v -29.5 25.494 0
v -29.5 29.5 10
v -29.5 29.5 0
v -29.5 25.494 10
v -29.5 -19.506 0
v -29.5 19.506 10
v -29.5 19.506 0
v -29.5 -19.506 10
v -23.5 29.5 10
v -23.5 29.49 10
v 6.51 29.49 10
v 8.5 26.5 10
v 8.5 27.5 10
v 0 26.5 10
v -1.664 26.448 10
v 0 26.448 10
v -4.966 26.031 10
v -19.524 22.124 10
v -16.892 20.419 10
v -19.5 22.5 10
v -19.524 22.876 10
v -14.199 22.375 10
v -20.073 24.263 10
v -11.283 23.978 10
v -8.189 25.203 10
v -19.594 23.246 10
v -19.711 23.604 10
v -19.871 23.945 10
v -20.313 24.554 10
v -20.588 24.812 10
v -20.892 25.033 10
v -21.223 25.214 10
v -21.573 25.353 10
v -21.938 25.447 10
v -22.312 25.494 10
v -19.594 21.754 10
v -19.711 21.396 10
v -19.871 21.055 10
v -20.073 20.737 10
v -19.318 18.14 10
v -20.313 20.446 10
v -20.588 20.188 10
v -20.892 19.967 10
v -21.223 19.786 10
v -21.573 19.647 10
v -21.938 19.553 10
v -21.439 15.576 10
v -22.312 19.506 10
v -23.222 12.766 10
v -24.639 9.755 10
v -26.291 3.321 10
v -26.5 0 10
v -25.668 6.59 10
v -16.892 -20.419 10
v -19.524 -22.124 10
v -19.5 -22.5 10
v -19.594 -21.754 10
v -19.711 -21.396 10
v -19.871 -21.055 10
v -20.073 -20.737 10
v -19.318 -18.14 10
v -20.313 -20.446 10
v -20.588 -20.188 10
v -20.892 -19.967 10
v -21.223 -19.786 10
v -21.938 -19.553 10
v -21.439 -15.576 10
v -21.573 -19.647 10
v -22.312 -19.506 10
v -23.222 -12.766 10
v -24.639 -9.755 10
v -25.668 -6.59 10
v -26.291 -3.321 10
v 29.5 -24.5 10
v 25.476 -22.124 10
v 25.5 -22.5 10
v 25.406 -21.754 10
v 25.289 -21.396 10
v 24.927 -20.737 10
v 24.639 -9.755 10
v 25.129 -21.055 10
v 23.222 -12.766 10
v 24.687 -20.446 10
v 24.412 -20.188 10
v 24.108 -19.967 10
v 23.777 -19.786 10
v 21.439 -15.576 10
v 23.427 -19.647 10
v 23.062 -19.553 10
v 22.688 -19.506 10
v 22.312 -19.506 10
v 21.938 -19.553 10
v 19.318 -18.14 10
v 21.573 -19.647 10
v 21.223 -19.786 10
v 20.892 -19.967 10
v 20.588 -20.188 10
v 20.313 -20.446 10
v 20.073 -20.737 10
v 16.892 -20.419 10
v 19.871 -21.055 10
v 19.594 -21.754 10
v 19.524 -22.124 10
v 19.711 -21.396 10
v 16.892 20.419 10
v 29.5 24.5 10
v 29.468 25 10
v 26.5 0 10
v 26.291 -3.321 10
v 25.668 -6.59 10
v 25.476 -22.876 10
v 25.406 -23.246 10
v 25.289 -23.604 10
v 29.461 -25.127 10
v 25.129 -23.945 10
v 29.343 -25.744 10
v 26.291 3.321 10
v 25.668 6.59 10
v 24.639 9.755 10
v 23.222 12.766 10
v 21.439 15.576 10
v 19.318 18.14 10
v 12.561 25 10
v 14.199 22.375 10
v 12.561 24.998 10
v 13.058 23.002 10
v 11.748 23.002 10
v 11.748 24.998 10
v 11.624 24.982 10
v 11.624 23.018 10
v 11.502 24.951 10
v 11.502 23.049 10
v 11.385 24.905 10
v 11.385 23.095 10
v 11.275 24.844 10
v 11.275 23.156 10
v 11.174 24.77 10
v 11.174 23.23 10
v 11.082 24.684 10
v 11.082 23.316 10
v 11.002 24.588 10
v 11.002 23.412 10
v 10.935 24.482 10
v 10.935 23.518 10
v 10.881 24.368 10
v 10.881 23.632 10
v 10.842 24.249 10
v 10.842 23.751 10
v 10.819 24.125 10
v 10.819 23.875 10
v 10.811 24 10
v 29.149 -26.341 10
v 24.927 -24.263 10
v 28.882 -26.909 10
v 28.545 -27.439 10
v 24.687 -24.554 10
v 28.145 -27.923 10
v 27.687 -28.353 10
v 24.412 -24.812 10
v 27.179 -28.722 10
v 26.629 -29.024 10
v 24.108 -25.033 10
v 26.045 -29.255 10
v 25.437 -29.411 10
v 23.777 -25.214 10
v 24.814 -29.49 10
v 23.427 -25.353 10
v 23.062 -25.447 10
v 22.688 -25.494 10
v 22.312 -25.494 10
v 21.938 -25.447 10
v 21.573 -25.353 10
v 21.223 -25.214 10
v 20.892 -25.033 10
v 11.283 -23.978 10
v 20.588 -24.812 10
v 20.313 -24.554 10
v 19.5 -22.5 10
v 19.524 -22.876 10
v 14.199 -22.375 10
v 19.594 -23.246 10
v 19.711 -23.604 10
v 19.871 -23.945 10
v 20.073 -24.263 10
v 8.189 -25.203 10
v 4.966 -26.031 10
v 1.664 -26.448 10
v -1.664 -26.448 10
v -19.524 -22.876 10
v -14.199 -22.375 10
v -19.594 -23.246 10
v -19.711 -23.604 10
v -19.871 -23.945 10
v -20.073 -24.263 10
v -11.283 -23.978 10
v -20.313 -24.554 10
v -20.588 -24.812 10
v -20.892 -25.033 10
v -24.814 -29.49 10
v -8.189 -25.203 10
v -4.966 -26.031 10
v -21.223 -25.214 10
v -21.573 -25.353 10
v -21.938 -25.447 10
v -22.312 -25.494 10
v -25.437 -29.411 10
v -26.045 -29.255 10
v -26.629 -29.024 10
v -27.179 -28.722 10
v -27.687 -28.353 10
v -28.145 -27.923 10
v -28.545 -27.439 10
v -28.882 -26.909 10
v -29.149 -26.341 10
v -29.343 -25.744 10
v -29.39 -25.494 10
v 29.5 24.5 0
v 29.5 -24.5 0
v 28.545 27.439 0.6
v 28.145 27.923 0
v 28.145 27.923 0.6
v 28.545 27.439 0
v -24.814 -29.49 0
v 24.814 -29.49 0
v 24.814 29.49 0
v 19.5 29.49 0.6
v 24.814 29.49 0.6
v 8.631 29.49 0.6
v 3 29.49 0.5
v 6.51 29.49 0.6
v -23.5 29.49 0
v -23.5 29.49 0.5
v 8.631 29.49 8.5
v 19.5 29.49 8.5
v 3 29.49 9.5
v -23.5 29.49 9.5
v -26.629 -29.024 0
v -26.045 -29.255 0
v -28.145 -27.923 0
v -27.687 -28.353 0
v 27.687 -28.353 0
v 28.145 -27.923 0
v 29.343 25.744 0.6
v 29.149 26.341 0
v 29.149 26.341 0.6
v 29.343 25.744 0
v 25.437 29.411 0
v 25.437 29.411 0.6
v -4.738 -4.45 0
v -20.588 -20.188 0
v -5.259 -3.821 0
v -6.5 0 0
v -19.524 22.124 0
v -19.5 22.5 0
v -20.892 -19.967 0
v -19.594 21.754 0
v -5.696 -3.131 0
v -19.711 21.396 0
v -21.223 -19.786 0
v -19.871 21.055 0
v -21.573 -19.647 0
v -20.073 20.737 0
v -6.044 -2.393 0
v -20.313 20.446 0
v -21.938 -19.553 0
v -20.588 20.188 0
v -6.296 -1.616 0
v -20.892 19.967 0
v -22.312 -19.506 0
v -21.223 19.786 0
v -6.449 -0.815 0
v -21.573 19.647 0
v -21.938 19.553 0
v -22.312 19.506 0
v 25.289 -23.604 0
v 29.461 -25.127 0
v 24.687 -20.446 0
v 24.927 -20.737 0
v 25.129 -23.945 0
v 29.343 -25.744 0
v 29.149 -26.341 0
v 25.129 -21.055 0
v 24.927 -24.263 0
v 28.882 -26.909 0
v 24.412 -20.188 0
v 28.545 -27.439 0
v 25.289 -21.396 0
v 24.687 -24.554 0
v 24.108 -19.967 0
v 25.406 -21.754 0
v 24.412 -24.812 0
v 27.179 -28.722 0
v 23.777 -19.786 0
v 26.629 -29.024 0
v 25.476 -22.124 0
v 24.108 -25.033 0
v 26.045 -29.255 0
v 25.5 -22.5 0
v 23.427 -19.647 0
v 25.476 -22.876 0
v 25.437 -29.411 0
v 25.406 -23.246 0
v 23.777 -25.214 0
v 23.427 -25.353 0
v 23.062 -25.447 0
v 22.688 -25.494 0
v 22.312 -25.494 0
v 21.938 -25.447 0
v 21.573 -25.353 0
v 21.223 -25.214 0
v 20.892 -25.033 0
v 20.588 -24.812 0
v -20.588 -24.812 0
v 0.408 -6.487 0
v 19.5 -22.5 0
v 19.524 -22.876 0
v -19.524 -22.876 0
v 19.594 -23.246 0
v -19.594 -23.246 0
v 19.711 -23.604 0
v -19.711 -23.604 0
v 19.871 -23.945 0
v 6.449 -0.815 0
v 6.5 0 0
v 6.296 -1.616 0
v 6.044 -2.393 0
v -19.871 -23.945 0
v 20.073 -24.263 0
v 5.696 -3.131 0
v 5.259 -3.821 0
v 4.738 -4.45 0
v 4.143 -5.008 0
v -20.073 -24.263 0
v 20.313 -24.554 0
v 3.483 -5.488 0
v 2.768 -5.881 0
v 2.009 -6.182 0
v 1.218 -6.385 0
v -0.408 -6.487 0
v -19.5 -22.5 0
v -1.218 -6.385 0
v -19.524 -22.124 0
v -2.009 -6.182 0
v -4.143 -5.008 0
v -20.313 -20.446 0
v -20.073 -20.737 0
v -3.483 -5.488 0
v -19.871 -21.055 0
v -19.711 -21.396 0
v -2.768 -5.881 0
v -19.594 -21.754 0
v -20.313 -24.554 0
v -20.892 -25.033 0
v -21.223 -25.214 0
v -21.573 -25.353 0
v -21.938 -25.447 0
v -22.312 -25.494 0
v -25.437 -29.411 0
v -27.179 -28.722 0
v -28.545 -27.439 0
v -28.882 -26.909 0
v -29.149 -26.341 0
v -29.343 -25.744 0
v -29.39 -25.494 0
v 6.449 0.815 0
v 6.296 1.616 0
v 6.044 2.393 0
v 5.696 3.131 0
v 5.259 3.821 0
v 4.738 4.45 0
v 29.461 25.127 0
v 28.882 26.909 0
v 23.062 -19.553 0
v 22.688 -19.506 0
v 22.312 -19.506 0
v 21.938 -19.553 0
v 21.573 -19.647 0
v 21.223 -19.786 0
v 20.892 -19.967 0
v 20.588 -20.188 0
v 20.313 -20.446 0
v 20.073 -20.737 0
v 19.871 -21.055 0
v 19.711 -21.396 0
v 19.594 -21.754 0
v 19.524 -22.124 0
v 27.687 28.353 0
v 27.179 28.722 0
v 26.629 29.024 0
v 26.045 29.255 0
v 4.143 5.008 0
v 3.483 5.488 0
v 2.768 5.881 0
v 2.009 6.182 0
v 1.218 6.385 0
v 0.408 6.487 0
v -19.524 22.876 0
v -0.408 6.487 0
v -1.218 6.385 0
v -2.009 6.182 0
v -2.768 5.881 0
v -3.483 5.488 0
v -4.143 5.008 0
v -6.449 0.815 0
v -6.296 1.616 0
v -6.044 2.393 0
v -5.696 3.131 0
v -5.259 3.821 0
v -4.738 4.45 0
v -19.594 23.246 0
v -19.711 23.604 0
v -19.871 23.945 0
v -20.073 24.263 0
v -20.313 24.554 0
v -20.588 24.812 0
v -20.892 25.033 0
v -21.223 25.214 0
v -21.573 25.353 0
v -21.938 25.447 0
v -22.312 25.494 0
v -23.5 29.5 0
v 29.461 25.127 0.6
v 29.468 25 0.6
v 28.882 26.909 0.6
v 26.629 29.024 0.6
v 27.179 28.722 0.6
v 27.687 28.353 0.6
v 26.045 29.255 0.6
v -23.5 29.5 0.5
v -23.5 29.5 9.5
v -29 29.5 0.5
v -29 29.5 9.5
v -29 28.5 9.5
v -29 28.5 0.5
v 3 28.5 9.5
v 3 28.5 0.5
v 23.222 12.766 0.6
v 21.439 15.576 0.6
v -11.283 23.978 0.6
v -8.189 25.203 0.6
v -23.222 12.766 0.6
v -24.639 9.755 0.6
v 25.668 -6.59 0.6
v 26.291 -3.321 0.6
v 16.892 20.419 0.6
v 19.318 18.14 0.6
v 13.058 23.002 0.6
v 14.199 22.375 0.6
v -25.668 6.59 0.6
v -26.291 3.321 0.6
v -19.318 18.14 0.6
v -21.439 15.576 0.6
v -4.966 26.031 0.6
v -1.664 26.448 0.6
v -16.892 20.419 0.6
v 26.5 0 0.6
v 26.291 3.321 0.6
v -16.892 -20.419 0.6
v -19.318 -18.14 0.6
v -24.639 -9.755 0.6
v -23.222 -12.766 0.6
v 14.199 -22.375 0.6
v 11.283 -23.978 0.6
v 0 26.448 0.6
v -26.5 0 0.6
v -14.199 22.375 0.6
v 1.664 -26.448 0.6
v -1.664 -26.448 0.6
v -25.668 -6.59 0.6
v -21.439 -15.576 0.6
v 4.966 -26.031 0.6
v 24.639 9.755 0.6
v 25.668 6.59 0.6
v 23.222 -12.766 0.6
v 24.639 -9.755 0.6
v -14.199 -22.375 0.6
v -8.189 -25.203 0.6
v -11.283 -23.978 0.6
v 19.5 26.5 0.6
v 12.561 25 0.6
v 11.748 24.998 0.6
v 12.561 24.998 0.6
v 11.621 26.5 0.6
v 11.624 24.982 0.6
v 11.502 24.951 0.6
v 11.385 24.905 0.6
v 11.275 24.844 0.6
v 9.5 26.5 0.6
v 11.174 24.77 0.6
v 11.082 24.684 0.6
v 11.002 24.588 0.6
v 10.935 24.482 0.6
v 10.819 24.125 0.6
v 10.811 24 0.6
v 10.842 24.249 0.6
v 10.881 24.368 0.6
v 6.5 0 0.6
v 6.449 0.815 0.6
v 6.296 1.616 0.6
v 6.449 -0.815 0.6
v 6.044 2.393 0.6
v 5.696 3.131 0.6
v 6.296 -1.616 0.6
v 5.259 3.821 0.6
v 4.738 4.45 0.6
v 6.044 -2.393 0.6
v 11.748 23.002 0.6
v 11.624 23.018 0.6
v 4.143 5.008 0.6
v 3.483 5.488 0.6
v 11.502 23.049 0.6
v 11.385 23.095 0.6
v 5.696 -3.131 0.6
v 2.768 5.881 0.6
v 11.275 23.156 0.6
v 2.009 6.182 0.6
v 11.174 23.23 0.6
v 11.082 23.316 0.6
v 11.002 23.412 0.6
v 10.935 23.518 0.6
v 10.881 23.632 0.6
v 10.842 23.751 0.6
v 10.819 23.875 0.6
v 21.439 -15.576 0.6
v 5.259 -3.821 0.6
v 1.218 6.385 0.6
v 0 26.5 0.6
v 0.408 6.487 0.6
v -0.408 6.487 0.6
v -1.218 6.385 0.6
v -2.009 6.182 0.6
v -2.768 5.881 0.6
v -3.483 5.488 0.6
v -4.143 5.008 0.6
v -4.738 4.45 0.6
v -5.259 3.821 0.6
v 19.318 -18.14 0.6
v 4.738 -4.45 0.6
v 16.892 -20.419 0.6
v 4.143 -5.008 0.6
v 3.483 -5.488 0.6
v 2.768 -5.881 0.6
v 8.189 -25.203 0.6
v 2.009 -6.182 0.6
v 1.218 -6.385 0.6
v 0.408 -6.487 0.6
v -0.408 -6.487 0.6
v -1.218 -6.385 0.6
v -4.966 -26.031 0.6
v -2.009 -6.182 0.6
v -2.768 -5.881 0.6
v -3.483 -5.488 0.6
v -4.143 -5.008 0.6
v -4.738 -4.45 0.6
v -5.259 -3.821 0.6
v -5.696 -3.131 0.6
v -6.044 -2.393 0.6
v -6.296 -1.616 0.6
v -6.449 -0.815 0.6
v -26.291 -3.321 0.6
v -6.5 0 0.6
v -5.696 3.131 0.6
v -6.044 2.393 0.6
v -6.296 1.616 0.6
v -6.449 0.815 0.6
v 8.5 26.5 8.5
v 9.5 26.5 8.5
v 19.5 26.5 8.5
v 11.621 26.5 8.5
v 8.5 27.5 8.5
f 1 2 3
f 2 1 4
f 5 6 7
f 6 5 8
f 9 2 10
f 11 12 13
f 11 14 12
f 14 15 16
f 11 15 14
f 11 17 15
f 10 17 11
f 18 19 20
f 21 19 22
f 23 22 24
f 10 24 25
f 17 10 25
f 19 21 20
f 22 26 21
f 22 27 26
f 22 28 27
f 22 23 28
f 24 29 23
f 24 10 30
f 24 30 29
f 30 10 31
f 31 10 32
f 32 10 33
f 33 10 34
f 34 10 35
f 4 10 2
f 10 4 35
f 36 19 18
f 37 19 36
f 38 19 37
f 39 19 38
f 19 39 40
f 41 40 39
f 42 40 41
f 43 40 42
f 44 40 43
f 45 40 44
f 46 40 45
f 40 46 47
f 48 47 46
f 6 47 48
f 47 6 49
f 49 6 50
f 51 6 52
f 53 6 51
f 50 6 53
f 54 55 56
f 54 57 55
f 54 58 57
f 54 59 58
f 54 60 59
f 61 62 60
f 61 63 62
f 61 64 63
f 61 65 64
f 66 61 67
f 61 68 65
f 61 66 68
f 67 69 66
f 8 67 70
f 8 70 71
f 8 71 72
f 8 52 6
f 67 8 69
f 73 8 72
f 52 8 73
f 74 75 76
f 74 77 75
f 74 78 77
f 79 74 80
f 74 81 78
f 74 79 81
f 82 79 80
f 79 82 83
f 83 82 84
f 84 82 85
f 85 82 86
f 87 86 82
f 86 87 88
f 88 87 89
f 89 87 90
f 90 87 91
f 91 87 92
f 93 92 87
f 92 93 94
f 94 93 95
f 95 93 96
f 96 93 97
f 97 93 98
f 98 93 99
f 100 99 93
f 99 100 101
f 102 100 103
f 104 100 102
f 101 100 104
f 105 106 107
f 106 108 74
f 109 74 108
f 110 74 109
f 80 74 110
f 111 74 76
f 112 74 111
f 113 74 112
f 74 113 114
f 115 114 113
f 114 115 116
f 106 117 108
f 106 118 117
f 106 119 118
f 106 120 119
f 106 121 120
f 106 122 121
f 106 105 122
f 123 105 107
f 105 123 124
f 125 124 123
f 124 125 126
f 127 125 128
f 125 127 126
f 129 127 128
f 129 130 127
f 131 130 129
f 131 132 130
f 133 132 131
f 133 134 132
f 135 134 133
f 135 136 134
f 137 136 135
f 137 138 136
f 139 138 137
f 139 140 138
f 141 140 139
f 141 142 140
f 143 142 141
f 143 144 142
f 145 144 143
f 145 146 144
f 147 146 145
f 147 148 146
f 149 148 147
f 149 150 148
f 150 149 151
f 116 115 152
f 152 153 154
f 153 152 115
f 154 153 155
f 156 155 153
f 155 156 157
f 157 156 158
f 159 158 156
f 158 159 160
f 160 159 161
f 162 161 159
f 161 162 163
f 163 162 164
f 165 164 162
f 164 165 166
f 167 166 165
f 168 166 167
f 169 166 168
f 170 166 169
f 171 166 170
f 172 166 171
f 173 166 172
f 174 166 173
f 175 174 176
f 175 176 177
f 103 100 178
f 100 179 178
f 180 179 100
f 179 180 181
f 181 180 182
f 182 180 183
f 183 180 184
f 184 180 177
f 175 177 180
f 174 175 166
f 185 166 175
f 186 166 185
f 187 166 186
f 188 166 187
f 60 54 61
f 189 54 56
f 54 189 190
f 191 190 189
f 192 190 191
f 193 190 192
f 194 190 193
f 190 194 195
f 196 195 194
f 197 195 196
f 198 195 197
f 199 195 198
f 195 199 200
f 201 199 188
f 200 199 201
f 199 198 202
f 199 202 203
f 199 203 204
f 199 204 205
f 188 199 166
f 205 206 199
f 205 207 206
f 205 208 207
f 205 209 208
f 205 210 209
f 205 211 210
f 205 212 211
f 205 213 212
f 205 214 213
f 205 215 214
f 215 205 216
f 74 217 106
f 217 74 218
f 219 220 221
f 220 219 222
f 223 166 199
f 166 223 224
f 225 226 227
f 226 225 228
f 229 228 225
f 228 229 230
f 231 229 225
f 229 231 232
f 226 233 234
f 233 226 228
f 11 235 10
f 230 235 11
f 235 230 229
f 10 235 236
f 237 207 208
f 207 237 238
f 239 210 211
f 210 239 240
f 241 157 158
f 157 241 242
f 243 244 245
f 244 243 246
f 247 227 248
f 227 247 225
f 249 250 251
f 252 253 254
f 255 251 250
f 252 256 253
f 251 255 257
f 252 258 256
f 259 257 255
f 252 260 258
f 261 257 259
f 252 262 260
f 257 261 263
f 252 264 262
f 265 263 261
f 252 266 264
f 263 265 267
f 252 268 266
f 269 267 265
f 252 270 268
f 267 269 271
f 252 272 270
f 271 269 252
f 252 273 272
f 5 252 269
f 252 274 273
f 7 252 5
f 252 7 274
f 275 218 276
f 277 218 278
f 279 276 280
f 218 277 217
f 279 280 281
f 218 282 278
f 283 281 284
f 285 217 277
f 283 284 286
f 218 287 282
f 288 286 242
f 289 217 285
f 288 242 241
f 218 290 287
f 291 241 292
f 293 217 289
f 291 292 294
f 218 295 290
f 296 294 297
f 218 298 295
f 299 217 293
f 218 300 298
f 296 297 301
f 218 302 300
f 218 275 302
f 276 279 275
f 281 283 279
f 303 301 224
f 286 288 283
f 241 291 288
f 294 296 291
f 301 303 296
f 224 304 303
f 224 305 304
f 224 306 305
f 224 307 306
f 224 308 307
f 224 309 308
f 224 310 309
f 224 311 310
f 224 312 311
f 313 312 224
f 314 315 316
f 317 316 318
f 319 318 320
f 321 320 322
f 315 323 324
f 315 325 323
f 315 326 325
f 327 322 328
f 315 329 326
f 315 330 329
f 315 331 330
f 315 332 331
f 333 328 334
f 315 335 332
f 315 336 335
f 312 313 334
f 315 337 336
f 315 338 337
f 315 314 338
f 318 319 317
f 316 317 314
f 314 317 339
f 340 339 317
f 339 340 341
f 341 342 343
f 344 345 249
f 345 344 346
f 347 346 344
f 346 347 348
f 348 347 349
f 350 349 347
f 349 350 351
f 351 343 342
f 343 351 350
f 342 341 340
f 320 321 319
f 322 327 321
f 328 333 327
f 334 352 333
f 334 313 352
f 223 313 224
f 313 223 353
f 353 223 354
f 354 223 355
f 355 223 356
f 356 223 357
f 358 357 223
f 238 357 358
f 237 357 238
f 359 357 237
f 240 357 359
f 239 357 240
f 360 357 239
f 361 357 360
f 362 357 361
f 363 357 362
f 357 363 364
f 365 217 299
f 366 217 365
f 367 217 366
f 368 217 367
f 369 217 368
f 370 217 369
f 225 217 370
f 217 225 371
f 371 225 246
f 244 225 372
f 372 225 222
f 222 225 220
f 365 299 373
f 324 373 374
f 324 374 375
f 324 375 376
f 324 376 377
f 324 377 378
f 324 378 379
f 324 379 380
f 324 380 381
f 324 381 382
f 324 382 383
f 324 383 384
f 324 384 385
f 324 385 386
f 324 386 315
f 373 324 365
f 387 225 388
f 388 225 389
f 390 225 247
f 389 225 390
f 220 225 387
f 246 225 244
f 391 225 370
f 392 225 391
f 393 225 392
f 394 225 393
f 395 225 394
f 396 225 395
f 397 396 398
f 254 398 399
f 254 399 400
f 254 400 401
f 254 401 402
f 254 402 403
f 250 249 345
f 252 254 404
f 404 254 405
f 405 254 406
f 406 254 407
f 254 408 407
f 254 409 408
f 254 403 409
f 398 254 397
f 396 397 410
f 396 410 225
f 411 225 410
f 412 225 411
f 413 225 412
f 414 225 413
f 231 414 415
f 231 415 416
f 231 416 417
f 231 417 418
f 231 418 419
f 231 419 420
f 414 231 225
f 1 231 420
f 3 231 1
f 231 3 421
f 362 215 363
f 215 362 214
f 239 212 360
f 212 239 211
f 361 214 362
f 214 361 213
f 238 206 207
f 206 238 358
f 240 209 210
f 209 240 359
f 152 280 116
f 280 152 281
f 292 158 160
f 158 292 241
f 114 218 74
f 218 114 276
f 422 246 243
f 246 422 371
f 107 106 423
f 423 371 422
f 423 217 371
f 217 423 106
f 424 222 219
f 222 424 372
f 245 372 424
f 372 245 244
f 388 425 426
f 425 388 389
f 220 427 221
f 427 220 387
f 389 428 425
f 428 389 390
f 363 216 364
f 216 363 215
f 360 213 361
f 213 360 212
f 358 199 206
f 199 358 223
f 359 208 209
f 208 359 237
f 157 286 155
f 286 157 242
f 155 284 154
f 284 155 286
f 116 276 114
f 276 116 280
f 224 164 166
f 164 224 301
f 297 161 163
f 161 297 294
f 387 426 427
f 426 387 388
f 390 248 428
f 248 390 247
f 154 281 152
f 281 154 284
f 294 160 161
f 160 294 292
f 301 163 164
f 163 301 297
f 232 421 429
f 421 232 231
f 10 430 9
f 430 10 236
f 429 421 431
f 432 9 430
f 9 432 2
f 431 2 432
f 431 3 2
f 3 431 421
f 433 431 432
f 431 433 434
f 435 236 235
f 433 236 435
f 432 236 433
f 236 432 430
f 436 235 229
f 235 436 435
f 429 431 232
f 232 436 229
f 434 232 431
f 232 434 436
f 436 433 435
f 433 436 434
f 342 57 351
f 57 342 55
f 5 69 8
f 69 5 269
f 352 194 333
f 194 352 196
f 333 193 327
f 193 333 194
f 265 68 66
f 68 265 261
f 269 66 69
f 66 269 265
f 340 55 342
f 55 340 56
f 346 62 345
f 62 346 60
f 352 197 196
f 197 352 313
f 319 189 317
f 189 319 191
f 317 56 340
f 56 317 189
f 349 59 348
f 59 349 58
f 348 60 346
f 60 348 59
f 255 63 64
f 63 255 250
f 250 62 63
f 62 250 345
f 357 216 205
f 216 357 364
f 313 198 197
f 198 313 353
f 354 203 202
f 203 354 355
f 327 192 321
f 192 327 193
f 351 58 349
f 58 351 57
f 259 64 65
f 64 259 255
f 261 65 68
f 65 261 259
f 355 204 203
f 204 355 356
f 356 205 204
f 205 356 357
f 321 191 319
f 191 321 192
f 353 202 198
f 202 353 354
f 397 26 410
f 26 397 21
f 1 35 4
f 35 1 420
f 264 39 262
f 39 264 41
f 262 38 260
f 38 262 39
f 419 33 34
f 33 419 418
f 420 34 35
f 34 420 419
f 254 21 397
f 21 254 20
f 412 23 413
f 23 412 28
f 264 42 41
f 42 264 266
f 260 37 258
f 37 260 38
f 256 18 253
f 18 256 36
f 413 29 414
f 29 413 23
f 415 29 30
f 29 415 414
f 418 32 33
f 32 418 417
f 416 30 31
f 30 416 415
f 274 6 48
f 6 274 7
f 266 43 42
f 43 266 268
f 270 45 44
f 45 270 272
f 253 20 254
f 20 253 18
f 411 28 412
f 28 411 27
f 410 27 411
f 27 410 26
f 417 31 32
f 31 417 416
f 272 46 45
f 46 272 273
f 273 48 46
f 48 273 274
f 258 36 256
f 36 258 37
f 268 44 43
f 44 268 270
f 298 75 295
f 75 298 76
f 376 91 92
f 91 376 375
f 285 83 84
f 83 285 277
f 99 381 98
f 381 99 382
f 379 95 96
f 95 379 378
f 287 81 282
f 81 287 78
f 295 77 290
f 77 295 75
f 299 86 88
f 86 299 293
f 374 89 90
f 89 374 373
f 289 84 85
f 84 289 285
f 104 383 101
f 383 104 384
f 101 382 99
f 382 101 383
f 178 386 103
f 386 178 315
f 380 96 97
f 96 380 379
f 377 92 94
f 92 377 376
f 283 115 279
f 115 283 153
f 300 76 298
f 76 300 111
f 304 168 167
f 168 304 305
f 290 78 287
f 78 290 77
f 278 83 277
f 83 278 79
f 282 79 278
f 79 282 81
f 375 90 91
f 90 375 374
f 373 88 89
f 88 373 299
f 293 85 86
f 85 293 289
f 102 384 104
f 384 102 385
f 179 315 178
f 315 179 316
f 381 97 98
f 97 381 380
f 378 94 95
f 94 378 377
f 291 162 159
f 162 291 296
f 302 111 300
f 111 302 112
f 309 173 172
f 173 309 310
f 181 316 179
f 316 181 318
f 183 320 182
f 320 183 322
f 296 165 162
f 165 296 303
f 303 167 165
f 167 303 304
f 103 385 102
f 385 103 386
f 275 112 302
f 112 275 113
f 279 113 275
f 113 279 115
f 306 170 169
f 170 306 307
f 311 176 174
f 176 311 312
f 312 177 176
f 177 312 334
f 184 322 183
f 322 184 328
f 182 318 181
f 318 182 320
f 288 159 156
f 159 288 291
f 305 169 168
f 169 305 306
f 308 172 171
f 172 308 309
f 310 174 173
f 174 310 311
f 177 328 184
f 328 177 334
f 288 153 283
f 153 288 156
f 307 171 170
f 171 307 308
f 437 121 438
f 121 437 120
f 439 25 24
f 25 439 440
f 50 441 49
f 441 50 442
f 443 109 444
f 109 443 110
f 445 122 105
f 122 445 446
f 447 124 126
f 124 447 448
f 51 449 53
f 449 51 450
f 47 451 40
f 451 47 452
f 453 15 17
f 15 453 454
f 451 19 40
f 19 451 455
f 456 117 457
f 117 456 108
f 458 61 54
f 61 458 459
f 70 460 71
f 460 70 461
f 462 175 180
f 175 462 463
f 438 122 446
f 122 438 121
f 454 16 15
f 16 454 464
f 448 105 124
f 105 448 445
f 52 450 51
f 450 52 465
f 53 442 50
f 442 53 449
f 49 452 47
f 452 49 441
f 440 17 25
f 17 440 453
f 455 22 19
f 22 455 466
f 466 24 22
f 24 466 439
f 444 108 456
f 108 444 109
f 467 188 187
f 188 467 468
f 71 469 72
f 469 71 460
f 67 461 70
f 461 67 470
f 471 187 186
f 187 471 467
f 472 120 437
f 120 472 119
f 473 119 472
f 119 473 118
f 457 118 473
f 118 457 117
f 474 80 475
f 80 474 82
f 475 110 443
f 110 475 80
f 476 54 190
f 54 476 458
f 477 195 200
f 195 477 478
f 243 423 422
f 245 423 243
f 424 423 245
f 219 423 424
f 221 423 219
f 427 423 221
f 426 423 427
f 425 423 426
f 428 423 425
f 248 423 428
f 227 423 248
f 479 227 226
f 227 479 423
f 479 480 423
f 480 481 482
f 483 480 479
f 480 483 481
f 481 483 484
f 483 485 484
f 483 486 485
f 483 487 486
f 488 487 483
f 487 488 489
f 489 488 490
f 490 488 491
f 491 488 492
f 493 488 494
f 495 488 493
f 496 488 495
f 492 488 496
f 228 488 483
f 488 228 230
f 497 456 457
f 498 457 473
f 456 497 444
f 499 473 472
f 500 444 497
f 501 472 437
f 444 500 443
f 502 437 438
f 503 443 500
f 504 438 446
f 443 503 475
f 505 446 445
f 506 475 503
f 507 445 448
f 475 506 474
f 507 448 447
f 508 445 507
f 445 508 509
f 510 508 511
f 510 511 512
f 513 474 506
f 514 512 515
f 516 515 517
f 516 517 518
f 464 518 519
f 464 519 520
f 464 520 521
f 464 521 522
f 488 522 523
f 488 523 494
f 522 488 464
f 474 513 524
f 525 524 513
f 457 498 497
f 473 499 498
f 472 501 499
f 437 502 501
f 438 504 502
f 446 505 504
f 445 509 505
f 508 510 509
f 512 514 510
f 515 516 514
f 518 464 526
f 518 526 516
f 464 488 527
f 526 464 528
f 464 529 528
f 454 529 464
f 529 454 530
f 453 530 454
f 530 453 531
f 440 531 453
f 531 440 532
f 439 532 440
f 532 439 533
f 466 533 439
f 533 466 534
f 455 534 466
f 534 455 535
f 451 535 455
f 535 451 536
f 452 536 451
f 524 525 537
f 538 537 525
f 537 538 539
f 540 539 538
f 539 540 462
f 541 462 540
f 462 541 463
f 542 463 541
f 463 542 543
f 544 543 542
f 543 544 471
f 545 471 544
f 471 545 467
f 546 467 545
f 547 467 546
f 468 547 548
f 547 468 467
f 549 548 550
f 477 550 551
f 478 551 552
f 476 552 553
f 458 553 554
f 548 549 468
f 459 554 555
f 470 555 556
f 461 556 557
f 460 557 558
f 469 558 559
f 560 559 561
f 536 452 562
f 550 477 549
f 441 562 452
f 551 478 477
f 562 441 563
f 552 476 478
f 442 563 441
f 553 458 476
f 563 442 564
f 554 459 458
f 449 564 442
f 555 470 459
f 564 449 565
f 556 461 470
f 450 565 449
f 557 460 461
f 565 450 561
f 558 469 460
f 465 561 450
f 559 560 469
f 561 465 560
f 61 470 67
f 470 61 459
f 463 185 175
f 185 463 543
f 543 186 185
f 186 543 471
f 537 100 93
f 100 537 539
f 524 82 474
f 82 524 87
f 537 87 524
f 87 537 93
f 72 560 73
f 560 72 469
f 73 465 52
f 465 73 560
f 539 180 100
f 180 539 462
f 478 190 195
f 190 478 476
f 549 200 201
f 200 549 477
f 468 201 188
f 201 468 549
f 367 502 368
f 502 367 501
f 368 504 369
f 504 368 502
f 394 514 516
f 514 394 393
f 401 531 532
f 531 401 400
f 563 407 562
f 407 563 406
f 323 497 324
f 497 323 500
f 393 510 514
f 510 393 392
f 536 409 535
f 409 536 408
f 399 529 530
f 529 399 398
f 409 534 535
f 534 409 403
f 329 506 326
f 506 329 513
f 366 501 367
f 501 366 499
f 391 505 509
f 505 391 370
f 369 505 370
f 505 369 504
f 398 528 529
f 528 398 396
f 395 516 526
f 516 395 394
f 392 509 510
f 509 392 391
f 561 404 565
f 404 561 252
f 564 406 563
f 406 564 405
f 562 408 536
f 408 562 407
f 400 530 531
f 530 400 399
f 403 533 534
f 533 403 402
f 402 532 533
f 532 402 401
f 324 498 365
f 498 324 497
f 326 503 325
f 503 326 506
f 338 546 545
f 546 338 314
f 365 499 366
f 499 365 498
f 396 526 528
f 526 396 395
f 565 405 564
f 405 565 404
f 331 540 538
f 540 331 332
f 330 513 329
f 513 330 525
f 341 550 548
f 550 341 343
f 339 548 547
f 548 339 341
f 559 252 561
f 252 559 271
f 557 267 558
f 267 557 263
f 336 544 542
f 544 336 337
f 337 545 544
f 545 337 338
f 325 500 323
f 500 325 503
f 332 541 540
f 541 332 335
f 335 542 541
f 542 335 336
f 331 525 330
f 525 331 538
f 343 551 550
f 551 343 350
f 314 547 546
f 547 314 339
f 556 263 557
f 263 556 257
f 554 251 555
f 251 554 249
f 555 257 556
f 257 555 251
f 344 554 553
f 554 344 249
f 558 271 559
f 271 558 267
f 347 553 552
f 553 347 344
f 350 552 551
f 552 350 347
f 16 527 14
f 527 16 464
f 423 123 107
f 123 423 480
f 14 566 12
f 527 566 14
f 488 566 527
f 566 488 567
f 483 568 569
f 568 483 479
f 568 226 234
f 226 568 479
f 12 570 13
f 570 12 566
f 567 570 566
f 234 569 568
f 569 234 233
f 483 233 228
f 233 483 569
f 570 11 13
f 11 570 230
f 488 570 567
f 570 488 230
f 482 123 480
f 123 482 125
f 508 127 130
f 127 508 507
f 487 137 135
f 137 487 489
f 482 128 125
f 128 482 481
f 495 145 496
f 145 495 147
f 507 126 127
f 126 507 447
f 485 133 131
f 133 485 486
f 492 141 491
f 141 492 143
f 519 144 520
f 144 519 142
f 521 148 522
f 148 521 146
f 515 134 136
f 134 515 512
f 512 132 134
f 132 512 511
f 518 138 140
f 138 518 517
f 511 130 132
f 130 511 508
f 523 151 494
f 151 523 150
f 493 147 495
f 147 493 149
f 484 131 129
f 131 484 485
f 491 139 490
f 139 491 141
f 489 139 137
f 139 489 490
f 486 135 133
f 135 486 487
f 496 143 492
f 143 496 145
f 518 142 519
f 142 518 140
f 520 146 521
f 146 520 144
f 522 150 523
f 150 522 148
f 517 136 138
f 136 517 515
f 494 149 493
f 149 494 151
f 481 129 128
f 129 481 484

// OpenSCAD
$fn = 50;


union() {
	difference() {
		union() {
			translate(v = [0, 0, 0]) {
				rotate(a = [0, 0, 0]) {
					hull() {
						translate(v = [-24.5000000000, 24.5000000000, 0]) {
							rotate(a = [0, 0, 0]) {
								translate(v = [0, 0, 0]) {
									rotate(a = [0, 0, 0]) {
										cylinder(h = 10, r = 5);
									}
								}
							}
						}
						translate(v = [24.5000000000, 24.5000000000, 0]) {
							rotate(a = [0, 0, 0]) {
								translate(v = [0, 0, 0]) {
									rotate(a = [0, 0, 0]) {
										cylinder(h = 10, r = 5);
									}
								}
							}
						}
						translate(v = [-24.5000000000, -24.5000000000, 0]) {
							rotate(a = [0, 0, 0]) {
								translate(v = [0, 0, 0]) {
									rotate(a = [0, 0, 0]) {
										cylinder(h = 10, r = 5);
									}
								}
							}
						}
						translate(v = [24.5000000000, -24.5000000000, 0]) {
							rotate(a = [0, 0, 0]) {
								translate(v = [0, 0, 0]) {
									rotate(a = [0, 0, 0]) {
										cylinder(h = 10, r = 5);
									}
								}
							}
						}
					}
				}
			}
			translate(v = [-29.5000000000, 23.5000000000, 0]) {
				rotate(a = [0, 0, 0]) {
					cube(size = [6, 6, 10]);
				}
			}
		}
		union() {
			#translate(v = [-29.0000000000, 28.5000000000, 0.5000000000]) {
				rotate(a = [0, 0, 0]) {
					cube(size = [32, 1, 9.0000000000]);
				}
			}
			translate(v = [-30.0000000000, -22.5000000000, -125]) {
				rotate(a = [0, 0, 0]) {
					hull() {
						translate(v = [7.5000000000, 0, 0]) {
							rotate(a = [0, 0, 0]) {
								translate(v = [0, 0, 0]) {
									rotate(a = [0, 0, 0]) {
										cylinder(h = 250, r = 3.0000000000);
									}
								}
							}
						}
						translate(v = [-7.5000000000, 0, 0]) {
							rotate(a = [0, 0, 0]) {
								translate(v = [0, 0, 0]) {
									rotate(a = [0, 0, 0]) {
										cylinder(h = 250, r = 3.0000000000);
									}
								}
							}
						}
					}
				}
			}
			translate(v = [-30.0000000000, 22.5000000000, -125]) {
				rotate(a = [0, 0, 0]) {
					hull() {
						translate(v = [7.5000000000, 0, 0]) {
							rotate(a = [0, 0, 0]) {
								translate(v = [0, 0, 0]) {
									rotate(a = [0, 0, 0]) {
										cylinder(h = 250, r = 3.0000000000);
									}
								}
							}
						}
						translate(v = [-7.5000000000, 0, 0]) {
							rotate(a = [0, 0, 0]) {
								translate(v = [0, 0, 0]) {
									rotate(a = [0, 0, 0]) {
										cylinder(h = 250, r = 3.0000000000);
									}
								}
							}
						}
					}
				}
			}
			translate(v = [22.5000000000, -22.5000000000, -125.0000000000]) {
				rotate(a = [0, 0, 0]) {
					cylinder(h = 250, r = 3.0000000000);
				}
			}
			translate(v = [0, 0, 0.6000000000]) {
				rotate(a = [0, 0, 0]) {
					cylinder(h = 12.4000000000, r = 26.5000000000);
				}
			}
			translate(v = [0, 0, -5.0000000000]) {
				rotate(a = [0, 0, 0]) {
					cylinder(h = 10, r = 6.5000000000);
				}
			}
			translate(v = [0.0000000000, 25.0000000000, 0.6000000000]) {
				rotate(a = [0, 0, 0]) {
					cube(size = [29.5000000000, 1.5000000000, 12.4000000000]);
				}
			}
			translate(v = [19.5000000000, 25.0000000000, 0.6000000000]) {
				rotate(a = [0, 0, 0]) {
					cube(size = [10, 4.5000000000, 12.4000000000]);
				}
			}
			translate(v = [8.5000000000, 25.0000000000, 8.5000000000]) {
				rotate(a = [0, 0, 0]) {
					cube(size = [21, 4.5000000000, 1.5000000000]);
				}
			}
			translate(v = [5.7500000000, 30.2500000000, 0.6000000000]) {
				rotate(a = [0, 0, -45]) {
					cube(size = [7.5000000000, 1.5000000000, 12.4000000000]);
				}
			}
			translate(v = [5.0610000000, 23.0000000000, 0.6000000000]) {
				rotate(a = [0, 0, 0]) {
					cube(size = [7.5000000000, 2, 9.4000000000]);
				}
			}
		}
	}
	union() {
		translate(v = [14.3110000000, 24.0000000000, 0]) {
			rotate(a = [0, 0, 0]) {
				hull() {
					translate(v = [2.5000000000, 0, 0]) {
						rotate(a = [0, 0, 0]) {
							#translate(v = [0, 0, 0]) {
								rotate(a = [0, 0, 0]) {
									cylinder(h = 10, r = 1.0000000000);
								}
							}
						}
					}
					translate(v = [-2.5000000000, 0, 0]) {
						rotate(a = [0, 0, 0]) {
							#translate(v = [0, 0, 0]) {
								rotate(a = [0, 0, 0]) {
									cylinder(h = 10, r = 1.0000000000);
								}
							}
						}
					}
				}
			}
		}
	}
}
